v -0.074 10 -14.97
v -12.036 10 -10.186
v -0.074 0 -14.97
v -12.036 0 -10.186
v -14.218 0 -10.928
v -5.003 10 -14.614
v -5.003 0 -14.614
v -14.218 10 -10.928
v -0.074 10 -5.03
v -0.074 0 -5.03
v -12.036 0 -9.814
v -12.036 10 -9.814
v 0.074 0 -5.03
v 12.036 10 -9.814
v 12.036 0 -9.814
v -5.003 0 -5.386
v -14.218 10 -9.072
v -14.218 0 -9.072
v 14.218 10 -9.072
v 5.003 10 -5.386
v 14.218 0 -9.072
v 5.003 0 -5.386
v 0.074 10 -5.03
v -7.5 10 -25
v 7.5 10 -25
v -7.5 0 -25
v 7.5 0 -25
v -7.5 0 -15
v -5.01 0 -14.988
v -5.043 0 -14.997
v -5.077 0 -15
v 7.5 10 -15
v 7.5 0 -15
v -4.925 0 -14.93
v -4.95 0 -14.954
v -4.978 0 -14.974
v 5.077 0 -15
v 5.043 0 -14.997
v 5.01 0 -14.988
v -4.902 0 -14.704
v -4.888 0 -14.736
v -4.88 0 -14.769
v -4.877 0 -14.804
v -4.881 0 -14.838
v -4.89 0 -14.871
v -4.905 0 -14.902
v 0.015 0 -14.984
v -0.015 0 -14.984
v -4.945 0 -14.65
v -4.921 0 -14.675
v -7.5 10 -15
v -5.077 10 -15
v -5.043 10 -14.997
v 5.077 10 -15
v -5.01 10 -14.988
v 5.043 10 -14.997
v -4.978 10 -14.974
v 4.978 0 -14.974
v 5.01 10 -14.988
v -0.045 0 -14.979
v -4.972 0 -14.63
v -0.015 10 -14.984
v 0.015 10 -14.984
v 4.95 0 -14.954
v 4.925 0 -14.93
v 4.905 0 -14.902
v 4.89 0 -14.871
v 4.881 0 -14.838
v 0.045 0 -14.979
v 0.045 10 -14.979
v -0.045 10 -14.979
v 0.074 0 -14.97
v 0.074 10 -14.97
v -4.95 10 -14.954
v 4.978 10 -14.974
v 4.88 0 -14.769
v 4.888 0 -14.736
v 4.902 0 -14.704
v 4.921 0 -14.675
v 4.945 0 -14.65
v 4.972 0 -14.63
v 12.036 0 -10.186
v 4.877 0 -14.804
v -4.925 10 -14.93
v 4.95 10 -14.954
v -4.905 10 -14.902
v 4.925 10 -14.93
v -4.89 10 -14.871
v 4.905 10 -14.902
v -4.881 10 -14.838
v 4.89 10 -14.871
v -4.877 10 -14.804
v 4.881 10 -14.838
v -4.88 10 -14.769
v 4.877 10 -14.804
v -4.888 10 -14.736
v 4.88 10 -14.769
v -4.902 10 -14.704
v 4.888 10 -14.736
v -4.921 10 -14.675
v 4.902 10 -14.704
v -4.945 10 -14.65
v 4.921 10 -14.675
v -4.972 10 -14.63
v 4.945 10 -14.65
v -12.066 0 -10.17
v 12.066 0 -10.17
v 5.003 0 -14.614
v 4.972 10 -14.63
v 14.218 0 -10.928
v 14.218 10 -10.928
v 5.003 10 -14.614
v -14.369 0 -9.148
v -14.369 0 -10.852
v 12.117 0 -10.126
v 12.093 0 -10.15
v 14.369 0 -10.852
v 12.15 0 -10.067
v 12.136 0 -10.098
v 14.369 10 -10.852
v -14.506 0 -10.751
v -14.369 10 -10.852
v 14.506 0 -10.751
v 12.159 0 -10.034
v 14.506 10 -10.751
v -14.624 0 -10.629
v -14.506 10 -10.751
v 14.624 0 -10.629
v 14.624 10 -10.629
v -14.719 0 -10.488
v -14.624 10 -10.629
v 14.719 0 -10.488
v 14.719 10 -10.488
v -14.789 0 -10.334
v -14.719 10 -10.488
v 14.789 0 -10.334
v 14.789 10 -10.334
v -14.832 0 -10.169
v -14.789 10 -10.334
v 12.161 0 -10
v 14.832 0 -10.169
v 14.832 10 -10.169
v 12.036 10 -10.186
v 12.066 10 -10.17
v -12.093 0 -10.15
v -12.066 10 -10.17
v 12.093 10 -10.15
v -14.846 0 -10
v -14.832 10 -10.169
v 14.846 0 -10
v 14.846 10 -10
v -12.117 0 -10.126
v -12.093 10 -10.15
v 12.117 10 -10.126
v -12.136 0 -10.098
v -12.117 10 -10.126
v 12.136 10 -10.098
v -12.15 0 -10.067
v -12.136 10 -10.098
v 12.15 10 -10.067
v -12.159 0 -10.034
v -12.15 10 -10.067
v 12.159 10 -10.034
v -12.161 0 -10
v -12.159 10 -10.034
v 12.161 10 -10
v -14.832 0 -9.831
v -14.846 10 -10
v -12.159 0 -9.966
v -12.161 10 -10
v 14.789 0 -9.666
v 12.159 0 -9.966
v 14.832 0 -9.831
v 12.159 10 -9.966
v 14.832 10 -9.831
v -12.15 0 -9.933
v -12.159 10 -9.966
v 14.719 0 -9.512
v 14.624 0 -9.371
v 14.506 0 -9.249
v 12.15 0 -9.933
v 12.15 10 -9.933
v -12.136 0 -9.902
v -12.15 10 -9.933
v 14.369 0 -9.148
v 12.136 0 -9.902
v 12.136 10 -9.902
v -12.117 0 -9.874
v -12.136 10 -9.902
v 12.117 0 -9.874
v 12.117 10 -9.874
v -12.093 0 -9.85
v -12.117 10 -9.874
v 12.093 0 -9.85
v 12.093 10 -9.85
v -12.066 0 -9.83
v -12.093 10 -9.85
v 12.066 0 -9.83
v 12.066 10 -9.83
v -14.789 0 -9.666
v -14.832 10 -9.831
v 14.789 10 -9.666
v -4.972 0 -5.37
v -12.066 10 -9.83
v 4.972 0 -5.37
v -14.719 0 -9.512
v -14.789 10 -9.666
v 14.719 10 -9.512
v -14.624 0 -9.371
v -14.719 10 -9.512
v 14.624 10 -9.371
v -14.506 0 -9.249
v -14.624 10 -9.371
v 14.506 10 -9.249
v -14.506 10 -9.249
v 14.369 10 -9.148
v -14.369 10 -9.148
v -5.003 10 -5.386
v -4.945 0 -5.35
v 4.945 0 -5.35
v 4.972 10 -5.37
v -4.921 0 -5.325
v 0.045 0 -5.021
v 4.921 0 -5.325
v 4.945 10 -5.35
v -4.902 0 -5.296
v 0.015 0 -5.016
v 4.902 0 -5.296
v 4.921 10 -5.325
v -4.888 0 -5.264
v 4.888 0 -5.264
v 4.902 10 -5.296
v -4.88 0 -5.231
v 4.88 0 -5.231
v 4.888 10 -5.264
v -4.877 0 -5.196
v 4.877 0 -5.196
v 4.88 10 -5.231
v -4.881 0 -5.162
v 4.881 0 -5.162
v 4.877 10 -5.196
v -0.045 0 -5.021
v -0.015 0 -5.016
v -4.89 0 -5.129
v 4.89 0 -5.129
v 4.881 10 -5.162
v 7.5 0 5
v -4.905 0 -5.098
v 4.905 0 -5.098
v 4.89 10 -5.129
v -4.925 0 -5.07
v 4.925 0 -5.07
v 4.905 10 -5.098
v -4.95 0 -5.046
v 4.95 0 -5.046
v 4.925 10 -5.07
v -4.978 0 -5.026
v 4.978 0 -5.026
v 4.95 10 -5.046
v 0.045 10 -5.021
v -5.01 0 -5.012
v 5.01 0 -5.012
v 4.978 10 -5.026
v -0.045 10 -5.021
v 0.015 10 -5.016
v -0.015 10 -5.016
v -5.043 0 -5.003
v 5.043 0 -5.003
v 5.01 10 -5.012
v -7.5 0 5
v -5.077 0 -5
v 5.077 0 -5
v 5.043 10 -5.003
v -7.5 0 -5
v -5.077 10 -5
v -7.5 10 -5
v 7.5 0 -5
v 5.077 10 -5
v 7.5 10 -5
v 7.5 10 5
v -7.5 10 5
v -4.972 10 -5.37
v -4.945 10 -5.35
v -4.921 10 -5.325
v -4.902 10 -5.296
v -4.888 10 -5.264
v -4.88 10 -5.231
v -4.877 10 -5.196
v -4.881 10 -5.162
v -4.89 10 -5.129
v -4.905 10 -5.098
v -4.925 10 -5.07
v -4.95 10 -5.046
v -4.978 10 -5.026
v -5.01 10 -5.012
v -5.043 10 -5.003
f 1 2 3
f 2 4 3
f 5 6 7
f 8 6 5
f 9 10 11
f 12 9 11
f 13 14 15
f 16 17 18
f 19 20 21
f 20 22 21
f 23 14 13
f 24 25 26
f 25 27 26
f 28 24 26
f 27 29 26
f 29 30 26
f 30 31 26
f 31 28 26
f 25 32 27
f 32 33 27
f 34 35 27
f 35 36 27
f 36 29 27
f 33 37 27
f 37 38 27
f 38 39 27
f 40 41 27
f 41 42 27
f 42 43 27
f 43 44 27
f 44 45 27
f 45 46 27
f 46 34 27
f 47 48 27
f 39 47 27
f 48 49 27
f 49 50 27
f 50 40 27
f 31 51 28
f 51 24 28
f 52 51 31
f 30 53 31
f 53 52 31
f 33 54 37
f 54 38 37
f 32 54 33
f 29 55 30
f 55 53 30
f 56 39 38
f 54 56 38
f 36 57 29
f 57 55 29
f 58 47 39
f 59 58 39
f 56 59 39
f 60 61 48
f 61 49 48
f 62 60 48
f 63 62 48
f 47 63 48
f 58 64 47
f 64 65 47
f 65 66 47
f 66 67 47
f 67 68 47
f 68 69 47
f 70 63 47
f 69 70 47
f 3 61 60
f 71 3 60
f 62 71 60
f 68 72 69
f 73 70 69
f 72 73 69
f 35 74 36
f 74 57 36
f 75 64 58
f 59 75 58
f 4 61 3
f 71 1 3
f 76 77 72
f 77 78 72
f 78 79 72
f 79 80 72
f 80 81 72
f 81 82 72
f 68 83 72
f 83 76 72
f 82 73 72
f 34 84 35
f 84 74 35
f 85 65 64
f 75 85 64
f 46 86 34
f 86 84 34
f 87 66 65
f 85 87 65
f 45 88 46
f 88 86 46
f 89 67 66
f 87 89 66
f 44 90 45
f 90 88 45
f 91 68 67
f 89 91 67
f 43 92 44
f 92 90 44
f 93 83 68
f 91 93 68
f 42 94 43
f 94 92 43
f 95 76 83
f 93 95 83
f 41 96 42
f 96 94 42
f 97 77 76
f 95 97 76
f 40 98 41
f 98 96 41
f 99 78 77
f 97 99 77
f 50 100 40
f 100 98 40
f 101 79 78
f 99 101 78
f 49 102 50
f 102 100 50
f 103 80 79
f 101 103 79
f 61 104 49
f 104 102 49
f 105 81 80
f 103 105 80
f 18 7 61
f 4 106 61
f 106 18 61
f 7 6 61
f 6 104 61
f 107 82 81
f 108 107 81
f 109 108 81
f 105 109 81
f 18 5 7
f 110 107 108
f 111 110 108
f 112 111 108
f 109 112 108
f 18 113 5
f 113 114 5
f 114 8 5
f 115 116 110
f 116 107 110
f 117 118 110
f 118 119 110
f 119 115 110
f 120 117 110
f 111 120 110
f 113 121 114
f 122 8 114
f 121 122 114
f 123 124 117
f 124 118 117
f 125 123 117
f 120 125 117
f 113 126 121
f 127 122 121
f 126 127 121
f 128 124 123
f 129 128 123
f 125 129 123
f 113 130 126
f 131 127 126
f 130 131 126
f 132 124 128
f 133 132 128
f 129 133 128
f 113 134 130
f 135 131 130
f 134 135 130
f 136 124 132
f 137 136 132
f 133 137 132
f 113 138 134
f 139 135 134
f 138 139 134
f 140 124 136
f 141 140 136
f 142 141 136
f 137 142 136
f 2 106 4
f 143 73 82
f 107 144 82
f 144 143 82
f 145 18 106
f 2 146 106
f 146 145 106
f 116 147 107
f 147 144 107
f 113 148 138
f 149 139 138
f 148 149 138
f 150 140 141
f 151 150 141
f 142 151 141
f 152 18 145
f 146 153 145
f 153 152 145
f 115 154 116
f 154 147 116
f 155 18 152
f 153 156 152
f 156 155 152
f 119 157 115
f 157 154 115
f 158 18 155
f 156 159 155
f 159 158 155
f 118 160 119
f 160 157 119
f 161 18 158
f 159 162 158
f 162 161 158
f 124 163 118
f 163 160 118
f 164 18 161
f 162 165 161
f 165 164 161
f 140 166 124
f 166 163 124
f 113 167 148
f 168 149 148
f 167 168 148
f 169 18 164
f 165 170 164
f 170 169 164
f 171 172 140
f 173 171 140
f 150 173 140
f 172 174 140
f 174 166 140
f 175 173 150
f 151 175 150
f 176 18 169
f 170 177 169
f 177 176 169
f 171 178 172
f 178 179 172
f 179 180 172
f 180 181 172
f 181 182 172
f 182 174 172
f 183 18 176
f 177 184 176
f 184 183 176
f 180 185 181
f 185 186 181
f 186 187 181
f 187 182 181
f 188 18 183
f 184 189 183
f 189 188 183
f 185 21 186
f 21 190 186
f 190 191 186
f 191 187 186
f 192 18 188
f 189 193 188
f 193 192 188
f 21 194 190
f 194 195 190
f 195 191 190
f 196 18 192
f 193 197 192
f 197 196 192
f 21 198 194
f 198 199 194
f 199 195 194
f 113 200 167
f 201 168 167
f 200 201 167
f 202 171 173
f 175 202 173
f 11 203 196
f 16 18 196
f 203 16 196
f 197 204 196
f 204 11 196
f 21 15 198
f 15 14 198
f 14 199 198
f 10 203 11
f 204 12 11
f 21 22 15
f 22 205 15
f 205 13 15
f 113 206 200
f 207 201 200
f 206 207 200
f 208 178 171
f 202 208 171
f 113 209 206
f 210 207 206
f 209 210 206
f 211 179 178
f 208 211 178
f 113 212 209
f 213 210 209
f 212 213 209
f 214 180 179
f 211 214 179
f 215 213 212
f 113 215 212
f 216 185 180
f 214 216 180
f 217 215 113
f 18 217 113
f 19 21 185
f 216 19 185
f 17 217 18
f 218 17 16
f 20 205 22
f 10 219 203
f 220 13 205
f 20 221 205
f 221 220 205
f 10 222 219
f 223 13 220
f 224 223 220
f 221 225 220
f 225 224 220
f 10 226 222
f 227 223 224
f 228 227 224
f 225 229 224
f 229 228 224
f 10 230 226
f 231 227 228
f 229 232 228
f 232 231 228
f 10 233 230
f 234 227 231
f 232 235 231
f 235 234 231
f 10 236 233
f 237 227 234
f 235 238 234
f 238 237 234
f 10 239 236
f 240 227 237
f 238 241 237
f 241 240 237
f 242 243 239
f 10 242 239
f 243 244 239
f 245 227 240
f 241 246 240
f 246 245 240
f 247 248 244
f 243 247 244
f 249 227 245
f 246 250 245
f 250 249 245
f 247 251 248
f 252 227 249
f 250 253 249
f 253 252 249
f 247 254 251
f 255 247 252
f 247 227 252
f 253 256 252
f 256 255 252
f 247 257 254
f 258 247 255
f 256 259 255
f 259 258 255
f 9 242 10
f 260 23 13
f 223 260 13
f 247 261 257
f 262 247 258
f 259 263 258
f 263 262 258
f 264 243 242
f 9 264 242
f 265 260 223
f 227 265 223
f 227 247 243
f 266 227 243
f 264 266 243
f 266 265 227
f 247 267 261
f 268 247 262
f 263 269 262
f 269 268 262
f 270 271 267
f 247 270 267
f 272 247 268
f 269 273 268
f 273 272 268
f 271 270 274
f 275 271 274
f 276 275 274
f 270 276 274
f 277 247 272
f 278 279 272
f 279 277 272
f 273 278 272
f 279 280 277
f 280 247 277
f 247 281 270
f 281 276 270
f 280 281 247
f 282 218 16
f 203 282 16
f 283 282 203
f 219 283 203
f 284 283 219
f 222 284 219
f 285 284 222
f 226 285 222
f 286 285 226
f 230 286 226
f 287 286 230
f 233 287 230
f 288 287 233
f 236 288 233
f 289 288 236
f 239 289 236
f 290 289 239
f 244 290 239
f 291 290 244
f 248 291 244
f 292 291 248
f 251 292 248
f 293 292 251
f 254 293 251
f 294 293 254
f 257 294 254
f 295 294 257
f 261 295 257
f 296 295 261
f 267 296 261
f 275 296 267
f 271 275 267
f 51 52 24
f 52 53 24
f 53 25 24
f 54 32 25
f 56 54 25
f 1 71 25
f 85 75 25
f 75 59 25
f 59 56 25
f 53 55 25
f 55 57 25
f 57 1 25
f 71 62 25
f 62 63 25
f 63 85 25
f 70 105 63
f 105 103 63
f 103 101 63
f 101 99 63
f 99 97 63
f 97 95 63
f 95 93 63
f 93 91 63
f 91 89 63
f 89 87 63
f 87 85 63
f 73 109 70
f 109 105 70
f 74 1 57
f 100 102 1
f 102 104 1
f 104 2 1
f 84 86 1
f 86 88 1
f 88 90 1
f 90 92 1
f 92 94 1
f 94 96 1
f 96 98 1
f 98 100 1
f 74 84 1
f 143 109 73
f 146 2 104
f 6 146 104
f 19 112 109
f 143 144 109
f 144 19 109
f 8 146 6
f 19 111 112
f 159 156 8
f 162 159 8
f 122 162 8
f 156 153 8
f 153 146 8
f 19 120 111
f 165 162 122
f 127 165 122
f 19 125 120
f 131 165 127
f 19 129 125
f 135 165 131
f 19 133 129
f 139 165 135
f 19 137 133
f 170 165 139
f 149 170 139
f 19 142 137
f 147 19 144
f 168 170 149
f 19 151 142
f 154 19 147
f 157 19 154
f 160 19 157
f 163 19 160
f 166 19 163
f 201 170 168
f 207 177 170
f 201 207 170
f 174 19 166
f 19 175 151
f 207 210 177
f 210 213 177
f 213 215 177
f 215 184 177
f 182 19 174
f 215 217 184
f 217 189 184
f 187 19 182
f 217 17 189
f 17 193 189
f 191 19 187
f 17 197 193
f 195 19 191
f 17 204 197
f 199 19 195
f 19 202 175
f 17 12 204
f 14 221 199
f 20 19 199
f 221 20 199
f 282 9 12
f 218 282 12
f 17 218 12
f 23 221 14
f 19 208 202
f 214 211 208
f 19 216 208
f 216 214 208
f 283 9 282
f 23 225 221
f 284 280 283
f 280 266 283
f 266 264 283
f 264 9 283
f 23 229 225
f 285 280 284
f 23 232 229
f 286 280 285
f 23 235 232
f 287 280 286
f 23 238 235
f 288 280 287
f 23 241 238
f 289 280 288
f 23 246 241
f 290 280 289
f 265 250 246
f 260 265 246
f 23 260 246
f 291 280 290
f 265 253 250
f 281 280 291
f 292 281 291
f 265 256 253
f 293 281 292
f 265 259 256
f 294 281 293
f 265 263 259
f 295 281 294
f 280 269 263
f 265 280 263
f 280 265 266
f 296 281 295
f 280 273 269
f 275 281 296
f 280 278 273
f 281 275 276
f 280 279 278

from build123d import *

# Parameters (mm, degrees)
SKETCH1_W             = 15
SKETCH1_H             = 10
BOSS_EXTRUDE2_DEPTH   = 10
BOSS_EXTRUDE2_2_DEPTH = 10
BOSS_EXTRUDE3_DEPTH   = 10
FILLET1_R             = 0.2
FILLET2_R             = 1


with BuildPart() as part:
    # Sketch1 → Boss-Extrude2 (new body)
    with BuildSketch(Plane(origin=(0, 0, 0), x_dir=(1, 0, 0), z_dir=(0, 1, 0))):
        with Locations((0, 20)):
            Rectangle(SKETCH1_W, SKETCH1_H)
    extrude(amount=BOSS_EXTRUDE2_DEPTH)



with BuildPart() as body_2:
    # Sketch1 → Boss-Extrude2 2 (new body)
    with BuildSketch(Plane(origin=(0, 0, 0), x_dir=(1, 0, 0), z_dir=(0, 1, 0))):
        Rectangle(SKETCH1_W, SKETCH1_H)
    extrude(amount=BOSS_EXTRUDE2_2_DEPTH)


with BuildPart() as part_1:
    add(part.part)

    add(body_2.part)  # Boss-Extrude3 merges body 2
    # Sketch1<4> → Boss-Extrude3 (add)
    with BuildSketch(Plane(origin=(0, 0, 0), x_dir=(1, 0, 0), z_dir=(0, 1, 0))):
        Polygon((-12.5, 10), (0, 15), (-4.038873605, 15), (-16.538873605, 10), (-4.038873605, 5), (0, 5), align=None)
    boss_extrude3 = extrude(amount=BOSS_EXTRUDE3_DEPTH)

    # Mirror1: Boss-Extrude3 across plane
    add(boss_extrude3.mirror(Plane.ZY))

    # Fillet1
    fillet1_edges = [part_1.edges().sort_by_distance(p)[0] for p in [
        (-4.038873605, 5, -15),
        (-4.038873605, 5, -5),
        (0, 5, -5),
        (-12.5, 5, -10),
        (0, 5, -15),
        (4.038873605, 5, -15),
        (12.5, 5, -10),
        (4.038873605, 5, -5),
    ]]
    fillet(fillet1_edges, radius=FILLET1_R)

    # Fillet2
    fillet2_edges = [part_1.edges().sort_by_distance(p)[0] for p in [
        (-16.538873605, 5, -10),
        (16.538873605, 5, -10),
    ]]
    fillet(fillet2_edges, radius=FILLET2_R)


solid = part_1.part
